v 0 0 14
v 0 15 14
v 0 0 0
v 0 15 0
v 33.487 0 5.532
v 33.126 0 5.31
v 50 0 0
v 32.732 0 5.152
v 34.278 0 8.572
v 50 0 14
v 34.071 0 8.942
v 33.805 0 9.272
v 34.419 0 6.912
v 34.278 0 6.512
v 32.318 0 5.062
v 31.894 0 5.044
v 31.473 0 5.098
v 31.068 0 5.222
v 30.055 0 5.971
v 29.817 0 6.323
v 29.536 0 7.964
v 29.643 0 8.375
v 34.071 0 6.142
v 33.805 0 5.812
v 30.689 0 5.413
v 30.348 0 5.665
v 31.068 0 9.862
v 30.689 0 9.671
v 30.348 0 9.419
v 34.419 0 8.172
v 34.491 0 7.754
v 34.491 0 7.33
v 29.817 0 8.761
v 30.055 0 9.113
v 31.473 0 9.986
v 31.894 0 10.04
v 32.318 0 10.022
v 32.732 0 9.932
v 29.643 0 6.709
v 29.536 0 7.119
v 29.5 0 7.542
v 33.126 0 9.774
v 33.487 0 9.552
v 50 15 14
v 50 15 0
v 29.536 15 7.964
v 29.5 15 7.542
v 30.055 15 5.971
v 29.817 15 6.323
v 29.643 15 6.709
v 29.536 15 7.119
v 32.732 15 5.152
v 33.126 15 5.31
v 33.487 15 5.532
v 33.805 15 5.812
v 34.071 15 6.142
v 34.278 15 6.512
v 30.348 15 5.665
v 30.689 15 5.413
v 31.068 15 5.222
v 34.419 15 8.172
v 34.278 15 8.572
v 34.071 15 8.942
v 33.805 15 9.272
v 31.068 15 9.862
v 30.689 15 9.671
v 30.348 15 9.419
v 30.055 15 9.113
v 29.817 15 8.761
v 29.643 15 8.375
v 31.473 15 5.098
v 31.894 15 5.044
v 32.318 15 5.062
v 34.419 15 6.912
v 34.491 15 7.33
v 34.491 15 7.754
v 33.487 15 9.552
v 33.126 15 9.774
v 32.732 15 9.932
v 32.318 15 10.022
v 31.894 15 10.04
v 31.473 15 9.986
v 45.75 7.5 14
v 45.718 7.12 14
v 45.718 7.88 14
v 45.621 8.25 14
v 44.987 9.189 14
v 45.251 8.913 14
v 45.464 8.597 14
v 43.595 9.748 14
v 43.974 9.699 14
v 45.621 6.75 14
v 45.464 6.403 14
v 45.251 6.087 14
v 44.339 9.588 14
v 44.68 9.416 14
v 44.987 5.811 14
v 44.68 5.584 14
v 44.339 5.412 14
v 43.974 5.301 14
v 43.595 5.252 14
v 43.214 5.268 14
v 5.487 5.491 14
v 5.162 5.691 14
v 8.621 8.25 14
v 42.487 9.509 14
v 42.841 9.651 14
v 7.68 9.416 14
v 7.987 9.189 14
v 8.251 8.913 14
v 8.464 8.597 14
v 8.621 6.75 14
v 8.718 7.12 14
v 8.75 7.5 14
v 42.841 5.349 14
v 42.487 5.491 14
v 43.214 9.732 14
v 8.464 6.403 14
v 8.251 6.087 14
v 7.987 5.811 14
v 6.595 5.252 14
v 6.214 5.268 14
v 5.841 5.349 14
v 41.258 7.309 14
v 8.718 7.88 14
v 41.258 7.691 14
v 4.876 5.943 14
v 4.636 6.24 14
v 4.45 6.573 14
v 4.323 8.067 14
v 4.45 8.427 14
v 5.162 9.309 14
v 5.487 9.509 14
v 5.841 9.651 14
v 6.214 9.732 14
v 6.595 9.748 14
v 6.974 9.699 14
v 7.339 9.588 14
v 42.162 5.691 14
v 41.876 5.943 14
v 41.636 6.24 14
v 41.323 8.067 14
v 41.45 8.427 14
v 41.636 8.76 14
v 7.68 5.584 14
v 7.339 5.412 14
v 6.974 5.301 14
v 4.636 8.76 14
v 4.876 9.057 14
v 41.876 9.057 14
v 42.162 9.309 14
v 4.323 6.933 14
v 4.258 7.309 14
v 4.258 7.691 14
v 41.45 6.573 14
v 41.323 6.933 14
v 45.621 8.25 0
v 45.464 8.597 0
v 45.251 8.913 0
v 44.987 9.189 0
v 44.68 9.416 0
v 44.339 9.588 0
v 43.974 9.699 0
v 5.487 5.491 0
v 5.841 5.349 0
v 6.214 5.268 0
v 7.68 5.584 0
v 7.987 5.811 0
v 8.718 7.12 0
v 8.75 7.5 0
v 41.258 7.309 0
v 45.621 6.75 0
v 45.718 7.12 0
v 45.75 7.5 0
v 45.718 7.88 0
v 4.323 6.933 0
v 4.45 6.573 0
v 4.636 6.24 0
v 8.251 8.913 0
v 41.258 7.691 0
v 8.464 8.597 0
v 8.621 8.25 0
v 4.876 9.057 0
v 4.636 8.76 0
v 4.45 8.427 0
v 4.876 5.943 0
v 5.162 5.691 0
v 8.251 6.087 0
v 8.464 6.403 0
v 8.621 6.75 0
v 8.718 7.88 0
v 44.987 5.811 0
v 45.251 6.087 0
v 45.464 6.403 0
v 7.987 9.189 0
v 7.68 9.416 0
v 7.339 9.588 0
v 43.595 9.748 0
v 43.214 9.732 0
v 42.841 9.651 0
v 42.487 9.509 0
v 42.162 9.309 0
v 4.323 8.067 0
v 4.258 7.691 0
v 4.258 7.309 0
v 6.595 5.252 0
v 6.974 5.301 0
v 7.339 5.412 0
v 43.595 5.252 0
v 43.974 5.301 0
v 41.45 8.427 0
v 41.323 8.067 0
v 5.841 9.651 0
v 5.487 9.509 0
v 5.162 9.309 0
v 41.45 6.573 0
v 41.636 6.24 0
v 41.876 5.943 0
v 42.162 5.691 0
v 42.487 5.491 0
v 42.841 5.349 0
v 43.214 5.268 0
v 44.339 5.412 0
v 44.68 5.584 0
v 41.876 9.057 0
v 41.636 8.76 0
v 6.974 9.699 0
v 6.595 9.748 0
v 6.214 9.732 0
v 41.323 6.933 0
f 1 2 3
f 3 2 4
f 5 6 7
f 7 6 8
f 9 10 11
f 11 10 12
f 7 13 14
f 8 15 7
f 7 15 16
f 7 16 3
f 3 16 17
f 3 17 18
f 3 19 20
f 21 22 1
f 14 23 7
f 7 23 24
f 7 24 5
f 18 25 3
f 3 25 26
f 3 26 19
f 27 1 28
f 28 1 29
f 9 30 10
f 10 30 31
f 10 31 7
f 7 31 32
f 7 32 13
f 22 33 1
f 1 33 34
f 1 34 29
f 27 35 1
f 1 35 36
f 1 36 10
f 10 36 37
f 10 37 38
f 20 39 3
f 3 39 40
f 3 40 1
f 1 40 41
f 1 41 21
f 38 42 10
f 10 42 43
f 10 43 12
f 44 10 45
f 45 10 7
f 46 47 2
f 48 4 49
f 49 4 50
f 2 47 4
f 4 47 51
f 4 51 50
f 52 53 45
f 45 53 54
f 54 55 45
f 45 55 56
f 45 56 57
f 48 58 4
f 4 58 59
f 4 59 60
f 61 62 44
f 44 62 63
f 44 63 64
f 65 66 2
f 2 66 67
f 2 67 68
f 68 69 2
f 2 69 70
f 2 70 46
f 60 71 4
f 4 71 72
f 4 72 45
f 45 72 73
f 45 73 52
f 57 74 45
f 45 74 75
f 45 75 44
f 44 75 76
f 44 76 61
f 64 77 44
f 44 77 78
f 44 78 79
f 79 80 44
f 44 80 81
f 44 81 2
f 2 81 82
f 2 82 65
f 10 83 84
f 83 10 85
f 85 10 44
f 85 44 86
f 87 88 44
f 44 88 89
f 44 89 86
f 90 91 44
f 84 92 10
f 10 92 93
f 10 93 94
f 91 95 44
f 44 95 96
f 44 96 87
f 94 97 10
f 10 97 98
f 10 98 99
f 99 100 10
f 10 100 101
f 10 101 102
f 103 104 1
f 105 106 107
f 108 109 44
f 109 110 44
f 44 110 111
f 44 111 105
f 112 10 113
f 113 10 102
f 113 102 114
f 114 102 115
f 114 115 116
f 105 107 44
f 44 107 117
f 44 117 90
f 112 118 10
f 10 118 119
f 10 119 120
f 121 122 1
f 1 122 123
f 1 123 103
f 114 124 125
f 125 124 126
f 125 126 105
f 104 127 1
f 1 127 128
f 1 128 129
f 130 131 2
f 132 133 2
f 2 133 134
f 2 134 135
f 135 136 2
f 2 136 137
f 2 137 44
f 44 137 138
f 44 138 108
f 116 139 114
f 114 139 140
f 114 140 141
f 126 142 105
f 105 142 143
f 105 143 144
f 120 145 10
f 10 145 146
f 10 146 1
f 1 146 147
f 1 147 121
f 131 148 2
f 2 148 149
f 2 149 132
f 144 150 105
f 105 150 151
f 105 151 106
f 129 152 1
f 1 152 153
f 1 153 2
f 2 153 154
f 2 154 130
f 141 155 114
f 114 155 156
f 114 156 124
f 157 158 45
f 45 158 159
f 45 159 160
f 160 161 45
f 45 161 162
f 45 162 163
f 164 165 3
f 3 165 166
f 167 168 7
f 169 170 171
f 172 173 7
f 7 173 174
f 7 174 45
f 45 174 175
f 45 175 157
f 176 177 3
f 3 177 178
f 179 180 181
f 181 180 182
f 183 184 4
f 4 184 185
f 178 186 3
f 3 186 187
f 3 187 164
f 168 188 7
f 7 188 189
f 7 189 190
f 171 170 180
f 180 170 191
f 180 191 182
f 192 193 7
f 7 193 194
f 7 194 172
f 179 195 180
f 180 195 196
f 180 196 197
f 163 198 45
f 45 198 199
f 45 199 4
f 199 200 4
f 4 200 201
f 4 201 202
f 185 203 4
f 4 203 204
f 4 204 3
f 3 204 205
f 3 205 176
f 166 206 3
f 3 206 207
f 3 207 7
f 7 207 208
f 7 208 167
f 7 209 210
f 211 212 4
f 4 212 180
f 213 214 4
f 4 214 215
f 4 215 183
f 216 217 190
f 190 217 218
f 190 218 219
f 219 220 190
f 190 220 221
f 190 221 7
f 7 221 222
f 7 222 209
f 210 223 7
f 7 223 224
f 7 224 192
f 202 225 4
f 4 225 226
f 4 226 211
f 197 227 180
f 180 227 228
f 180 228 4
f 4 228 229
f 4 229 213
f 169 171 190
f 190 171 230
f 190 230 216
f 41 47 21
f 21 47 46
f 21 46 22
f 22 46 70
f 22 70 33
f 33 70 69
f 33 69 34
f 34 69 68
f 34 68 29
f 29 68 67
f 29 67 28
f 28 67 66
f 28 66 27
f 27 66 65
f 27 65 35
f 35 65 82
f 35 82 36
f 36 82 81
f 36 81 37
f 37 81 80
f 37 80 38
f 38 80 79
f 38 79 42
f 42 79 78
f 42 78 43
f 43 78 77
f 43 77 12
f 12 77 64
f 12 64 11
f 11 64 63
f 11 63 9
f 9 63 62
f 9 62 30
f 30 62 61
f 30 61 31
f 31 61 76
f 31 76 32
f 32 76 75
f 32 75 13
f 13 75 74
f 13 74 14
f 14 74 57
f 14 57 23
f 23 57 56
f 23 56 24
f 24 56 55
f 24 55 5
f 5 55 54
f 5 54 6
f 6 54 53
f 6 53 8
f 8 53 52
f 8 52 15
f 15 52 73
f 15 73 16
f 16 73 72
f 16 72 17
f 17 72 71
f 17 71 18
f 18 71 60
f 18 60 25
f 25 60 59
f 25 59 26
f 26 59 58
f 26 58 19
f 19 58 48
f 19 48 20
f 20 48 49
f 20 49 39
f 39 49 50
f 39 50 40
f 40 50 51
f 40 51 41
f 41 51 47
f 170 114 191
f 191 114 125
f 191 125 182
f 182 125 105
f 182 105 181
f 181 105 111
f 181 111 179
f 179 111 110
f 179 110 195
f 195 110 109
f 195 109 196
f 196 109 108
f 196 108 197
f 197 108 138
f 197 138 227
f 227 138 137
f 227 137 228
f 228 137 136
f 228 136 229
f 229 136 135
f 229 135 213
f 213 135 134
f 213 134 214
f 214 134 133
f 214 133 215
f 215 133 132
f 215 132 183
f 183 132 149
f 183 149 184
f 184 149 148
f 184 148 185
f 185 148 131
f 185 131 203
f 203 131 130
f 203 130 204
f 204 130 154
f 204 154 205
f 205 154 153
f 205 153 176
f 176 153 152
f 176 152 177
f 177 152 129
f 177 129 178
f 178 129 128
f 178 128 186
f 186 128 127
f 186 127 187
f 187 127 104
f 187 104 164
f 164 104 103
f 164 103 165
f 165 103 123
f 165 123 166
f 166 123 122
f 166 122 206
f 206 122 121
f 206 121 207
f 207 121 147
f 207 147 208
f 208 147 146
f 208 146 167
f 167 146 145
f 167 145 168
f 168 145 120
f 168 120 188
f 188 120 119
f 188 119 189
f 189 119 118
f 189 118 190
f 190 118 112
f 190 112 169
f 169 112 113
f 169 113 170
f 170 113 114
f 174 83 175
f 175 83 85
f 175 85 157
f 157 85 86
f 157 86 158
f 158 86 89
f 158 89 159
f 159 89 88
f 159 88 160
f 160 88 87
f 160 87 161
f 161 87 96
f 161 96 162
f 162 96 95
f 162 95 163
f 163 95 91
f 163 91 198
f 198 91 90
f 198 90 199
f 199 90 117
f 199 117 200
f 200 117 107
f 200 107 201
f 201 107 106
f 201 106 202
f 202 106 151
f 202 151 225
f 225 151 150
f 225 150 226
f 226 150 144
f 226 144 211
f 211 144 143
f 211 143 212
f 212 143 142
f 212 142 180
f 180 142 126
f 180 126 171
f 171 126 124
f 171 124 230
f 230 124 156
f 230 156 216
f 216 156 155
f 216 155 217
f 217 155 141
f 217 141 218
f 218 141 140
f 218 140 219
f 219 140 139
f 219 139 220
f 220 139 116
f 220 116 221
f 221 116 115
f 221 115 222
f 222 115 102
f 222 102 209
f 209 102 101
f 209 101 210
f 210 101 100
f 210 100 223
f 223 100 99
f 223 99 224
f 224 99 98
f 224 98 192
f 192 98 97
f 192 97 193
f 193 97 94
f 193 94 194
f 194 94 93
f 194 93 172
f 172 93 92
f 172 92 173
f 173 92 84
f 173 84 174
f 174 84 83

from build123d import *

# Parameters (mm, degrees)
SKETCH1_W           = 50
SKETCH1_H           = 15
BOSS_EXTRUDE1_DEPTH = 14
SKETCH2_R           = 2.5
CUT_EXTRUDE1_DEPTH  = 16
SKETCH3_R           = 2.25
CUT_EXTRUDE2_DEPTH  = 15


with BuildPart() as part:
    # Sketch1 → Boss-Extrude1 (new body)
    with BuildSketch(Plane.XY):
        with Locations((25, 7.5)):
            Rectangle(SKETCH1_W, SKETCH1_H)
    extrude(amount=BOSS_EXTRUDE1_DEPTH)

    # Sketch2 → Cut-Extrude1 (cut, through all)
    with BuildSketch(Plane(origin=(0, 15, 0), x_dir=(1, 0, 0), z_dir=(0, 1, 0))):
        with Locations((32, -7.541991602)):
            Circle(SKETCH2_R)
    extrude(amount=-CUT_EXTRUDE1_DEPTH, mode=Mode.SUBTRACT)

    # Sketch3 → Cut-Extrude2 (cut, through all)
    with BuildSketch(Plane.XY.offset(14)):
        with Locations((6.5, 7.5)):
            Circle(SKETCH3_R)
        with Locations((43.5, 7.5)):
            Circle(SKETCH3_R)
    extrude(amount=-CUT_EXTRUDE2_DEPTH, mode=Mode.SUBTRACT)


solid = part.part
